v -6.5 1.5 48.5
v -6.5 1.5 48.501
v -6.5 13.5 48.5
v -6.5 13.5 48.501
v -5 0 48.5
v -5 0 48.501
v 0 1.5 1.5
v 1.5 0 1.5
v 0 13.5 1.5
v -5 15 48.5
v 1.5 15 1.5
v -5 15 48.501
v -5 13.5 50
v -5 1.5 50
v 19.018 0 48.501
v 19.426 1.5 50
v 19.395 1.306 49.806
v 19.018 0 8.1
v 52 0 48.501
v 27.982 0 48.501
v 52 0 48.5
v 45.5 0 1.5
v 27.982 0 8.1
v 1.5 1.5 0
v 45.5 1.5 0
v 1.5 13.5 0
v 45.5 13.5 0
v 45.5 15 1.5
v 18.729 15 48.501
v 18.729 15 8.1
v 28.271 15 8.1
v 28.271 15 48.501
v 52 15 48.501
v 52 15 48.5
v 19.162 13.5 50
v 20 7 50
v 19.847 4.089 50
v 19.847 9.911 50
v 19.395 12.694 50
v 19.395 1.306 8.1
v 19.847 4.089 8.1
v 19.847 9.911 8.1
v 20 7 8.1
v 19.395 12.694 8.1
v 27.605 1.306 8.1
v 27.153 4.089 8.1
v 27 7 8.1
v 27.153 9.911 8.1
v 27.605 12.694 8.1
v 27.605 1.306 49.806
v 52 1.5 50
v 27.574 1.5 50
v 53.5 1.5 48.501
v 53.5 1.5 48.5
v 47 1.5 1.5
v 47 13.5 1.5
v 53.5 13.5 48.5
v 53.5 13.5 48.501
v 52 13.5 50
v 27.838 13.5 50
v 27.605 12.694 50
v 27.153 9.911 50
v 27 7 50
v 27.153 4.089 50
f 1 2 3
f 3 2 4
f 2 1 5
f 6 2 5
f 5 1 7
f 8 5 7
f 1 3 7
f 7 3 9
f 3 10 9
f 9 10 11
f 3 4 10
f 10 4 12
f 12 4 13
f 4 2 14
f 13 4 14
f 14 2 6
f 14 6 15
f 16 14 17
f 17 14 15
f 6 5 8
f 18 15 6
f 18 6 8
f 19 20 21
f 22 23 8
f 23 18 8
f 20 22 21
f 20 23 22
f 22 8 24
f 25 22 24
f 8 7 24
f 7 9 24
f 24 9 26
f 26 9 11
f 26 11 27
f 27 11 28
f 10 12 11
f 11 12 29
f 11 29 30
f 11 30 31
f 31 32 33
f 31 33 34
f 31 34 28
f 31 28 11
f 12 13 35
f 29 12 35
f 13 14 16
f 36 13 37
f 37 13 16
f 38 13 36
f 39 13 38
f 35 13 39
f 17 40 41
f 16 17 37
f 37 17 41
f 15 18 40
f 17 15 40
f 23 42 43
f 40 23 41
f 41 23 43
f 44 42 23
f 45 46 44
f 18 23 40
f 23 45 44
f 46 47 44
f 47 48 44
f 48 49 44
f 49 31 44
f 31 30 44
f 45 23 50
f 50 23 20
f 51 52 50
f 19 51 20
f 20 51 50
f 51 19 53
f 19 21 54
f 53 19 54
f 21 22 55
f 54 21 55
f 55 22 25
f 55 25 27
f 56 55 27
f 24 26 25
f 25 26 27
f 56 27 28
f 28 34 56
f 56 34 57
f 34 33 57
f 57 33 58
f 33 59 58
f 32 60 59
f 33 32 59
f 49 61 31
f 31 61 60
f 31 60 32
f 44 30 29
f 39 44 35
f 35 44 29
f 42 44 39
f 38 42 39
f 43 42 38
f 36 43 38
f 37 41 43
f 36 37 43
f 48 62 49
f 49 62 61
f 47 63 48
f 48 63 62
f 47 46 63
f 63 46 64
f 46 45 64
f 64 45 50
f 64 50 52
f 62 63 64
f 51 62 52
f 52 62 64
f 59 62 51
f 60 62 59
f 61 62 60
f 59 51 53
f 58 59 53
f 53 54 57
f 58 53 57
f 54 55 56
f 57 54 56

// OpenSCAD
module tapercube(w1=10, h1=10, w2=10, h2=10, depth=10, cut=3.0) {
  plane = 0.001;
  hull() {
    translate([cut/2,cut/2,0])
      cube([w1-cut, h1-cut, plane]);
    translate([0,0,cut/2]) {
      translate([0,cut/2])
        cube([w1, h1-cut, plane]);
      translate([cut/2,0])
        cube([w1-cut, h1, plane]);
    }

    translate([-(w2-w1)/2, -(h2-h1)/2, 0]) {
      translate([cut/2,cut/2,depth-plane])
        cube([w2-cut, h2-cut, plane]);
      translate([0,0,depth-cut/2]) {
        translate([0,cut/2])
          cube([w2, h2-cut, plane]);
        translate([cut/2,0])
          cube([w2-cut, h2, plane]);
      }
    }
  }
}

module neck(bw=44+3, tw=57+3) {
  difference() {
    tapercube(bw, 15, tw, 15, 50);

    translate([(bw-10)/2,0,8.1])
      difference() {
        cube([10,15,42]);
        for(x=[-5.5,10+5.5])
          translate([x,7,0])
            scale([0.5,1,1])
              cylinder(h=42,r=14);
      }
  }
}

neck();
